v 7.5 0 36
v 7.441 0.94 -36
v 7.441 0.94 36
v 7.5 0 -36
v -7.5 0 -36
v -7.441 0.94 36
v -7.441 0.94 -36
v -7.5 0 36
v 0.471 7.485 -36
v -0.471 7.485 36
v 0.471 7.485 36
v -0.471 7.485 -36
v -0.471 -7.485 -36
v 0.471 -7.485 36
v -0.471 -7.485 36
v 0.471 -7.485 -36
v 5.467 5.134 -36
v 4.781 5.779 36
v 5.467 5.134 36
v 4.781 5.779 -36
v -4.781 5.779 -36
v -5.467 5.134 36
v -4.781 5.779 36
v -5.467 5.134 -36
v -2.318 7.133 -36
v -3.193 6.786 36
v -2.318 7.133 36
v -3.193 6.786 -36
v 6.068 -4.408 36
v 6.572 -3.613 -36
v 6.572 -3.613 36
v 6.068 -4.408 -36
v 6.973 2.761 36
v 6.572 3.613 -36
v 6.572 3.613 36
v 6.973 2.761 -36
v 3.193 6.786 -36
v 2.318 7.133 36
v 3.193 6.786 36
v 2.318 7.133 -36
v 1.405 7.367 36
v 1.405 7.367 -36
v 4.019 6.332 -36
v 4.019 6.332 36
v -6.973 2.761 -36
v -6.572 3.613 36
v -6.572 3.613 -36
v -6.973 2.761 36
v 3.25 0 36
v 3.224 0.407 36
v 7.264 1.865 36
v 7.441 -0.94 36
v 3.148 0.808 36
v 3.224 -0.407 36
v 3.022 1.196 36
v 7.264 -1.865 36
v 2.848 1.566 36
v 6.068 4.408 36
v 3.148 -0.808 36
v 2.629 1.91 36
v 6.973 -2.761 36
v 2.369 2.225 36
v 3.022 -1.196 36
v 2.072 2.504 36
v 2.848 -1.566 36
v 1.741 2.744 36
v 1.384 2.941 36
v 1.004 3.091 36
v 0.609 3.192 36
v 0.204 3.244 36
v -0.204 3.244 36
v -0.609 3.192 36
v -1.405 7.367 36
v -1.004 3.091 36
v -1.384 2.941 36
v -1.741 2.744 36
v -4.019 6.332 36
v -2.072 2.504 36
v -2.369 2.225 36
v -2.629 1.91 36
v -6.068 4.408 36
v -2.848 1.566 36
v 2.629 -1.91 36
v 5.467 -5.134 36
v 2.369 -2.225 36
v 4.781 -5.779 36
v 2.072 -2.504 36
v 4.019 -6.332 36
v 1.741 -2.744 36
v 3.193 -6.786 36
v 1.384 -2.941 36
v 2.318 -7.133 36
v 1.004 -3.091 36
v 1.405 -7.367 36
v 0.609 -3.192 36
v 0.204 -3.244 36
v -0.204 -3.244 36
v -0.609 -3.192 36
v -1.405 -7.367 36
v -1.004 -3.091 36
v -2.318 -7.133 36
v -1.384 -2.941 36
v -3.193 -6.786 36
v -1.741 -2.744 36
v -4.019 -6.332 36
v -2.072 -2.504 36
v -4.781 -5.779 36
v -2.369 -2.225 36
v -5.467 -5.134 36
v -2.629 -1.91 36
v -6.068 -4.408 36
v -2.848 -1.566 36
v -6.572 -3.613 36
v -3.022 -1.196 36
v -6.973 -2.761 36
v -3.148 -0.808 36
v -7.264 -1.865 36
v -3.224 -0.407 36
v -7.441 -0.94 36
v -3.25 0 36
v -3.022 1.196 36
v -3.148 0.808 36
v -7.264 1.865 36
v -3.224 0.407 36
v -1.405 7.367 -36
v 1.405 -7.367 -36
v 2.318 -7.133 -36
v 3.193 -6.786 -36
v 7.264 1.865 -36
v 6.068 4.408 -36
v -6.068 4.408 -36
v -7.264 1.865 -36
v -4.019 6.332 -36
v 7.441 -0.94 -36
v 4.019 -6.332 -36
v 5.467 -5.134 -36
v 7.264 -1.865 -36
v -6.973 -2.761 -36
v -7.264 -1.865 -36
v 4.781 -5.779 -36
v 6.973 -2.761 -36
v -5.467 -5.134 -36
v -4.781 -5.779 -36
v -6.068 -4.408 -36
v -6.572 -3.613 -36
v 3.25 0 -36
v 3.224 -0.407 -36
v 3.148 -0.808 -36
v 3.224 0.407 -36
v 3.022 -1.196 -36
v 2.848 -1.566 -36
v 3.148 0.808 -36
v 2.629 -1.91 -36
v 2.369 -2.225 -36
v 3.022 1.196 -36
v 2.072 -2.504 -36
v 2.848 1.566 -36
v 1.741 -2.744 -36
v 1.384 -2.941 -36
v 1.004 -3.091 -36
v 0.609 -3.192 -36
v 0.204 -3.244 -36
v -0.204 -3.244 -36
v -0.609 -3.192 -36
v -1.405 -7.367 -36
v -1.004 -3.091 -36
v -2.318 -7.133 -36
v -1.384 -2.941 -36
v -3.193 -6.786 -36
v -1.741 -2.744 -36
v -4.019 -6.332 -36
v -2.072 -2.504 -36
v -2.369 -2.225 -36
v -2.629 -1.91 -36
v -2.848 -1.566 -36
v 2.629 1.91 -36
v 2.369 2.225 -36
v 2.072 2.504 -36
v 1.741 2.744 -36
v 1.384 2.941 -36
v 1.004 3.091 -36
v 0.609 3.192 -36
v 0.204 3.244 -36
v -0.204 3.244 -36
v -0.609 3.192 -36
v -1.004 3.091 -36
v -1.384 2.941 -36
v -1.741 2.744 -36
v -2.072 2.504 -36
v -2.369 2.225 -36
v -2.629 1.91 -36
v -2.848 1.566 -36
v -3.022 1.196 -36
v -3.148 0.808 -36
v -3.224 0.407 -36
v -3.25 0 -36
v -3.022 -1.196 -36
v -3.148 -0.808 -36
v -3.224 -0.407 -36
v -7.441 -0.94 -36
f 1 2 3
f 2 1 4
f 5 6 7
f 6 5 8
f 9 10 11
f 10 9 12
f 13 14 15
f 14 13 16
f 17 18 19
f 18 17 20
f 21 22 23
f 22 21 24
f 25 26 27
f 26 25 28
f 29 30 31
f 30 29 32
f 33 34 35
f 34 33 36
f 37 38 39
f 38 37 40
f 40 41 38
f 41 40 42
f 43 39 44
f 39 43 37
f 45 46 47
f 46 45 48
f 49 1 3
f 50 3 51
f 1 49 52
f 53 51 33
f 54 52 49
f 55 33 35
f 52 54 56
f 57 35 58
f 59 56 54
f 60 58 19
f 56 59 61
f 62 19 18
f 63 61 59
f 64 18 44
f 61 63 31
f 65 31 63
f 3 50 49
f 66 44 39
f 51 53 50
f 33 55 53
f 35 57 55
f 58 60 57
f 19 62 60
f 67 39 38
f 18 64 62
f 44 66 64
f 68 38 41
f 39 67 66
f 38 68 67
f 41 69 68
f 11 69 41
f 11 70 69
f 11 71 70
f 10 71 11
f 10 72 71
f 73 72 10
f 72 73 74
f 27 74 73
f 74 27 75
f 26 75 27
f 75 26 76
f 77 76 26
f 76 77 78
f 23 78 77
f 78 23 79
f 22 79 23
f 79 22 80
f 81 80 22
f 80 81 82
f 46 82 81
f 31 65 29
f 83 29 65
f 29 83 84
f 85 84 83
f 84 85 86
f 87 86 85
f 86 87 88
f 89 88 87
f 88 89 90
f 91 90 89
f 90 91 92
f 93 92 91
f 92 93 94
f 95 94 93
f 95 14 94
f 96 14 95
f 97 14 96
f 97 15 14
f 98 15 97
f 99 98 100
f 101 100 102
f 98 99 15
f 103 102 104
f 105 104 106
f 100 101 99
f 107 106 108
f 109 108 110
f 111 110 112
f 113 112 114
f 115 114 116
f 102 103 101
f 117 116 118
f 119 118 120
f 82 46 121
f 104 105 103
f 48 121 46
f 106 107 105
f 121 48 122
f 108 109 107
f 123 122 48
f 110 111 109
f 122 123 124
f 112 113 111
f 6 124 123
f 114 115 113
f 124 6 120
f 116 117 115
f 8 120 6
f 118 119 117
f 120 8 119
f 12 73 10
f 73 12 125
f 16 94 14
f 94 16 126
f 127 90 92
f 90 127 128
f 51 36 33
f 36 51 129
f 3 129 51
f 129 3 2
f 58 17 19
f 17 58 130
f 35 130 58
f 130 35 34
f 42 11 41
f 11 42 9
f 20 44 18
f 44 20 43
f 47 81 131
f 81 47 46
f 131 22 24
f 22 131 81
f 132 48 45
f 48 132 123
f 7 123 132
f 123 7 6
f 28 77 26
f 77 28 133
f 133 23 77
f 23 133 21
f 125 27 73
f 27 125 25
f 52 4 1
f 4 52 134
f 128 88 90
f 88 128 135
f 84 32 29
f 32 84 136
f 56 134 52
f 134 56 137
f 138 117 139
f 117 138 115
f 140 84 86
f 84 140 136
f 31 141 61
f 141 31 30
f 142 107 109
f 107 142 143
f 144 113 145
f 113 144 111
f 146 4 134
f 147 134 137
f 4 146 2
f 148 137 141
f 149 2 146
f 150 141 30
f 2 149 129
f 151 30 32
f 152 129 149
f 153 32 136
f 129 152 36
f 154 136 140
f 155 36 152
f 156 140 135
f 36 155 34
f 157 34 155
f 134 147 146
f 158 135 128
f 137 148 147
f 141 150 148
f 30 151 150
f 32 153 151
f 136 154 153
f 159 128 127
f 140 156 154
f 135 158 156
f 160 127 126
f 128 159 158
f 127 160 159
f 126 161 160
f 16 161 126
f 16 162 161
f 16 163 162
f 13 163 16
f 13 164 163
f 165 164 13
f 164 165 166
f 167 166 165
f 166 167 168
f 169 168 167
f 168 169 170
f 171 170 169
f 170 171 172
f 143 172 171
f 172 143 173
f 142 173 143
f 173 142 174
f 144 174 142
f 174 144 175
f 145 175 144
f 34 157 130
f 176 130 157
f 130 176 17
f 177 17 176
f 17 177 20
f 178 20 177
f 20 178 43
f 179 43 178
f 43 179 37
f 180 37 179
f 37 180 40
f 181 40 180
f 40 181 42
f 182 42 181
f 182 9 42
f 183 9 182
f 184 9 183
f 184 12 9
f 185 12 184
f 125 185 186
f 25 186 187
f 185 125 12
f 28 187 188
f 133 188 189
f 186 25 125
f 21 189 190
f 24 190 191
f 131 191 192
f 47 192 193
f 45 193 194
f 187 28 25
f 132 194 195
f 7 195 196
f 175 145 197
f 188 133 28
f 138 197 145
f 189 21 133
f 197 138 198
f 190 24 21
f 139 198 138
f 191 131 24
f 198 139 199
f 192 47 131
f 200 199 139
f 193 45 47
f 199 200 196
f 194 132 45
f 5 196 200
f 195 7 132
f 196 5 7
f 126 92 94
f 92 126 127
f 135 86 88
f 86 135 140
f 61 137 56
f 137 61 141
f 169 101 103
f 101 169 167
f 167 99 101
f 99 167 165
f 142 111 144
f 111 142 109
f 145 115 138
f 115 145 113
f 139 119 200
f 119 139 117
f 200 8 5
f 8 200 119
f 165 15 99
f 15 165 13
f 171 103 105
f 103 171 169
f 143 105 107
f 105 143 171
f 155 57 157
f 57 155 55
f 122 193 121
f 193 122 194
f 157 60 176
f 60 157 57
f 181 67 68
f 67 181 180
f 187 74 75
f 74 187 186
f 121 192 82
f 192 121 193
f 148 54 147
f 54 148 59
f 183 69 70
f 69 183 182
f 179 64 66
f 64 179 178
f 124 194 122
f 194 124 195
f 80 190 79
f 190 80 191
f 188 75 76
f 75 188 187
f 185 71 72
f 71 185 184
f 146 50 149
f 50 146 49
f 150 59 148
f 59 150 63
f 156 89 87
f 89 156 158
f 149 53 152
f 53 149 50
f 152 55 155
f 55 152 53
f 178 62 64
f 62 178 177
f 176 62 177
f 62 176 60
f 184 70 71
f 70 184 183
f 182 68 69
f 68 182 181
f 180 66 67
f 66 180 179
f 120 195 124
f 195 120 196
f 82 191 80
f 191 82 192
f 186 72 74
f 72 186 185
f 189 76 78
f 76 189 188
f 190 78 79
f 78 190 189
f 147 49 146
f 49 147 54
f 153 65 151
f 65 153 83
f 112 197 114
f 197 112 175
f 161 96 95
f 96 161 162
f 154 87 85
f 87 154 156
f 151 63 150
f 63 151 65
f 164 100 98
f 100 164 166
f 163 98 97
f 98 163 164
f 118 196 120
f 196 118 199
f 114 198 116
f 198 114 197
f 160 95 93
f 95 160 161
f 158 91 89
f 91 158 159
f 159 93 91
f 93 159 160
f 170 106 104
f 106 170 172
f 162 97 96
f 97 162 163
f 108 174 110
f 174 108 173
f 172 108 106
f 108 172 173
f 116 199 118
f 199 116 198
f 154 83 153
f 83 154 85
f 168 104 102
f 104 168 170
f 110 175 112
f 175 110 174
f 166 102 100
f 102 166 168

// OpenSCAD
$fn = 50;


difference() {
	union() {
		translate(v = [0, 0, -36.0000000000]) {
			cylinder(h = 72, r = 7.5000000000);
		}
	}
	union() {
		translate(v = [0, 0, -100.0000000000]) {
			cylinder(h = 200, r = 3.2500000000);
		}
	}
}
